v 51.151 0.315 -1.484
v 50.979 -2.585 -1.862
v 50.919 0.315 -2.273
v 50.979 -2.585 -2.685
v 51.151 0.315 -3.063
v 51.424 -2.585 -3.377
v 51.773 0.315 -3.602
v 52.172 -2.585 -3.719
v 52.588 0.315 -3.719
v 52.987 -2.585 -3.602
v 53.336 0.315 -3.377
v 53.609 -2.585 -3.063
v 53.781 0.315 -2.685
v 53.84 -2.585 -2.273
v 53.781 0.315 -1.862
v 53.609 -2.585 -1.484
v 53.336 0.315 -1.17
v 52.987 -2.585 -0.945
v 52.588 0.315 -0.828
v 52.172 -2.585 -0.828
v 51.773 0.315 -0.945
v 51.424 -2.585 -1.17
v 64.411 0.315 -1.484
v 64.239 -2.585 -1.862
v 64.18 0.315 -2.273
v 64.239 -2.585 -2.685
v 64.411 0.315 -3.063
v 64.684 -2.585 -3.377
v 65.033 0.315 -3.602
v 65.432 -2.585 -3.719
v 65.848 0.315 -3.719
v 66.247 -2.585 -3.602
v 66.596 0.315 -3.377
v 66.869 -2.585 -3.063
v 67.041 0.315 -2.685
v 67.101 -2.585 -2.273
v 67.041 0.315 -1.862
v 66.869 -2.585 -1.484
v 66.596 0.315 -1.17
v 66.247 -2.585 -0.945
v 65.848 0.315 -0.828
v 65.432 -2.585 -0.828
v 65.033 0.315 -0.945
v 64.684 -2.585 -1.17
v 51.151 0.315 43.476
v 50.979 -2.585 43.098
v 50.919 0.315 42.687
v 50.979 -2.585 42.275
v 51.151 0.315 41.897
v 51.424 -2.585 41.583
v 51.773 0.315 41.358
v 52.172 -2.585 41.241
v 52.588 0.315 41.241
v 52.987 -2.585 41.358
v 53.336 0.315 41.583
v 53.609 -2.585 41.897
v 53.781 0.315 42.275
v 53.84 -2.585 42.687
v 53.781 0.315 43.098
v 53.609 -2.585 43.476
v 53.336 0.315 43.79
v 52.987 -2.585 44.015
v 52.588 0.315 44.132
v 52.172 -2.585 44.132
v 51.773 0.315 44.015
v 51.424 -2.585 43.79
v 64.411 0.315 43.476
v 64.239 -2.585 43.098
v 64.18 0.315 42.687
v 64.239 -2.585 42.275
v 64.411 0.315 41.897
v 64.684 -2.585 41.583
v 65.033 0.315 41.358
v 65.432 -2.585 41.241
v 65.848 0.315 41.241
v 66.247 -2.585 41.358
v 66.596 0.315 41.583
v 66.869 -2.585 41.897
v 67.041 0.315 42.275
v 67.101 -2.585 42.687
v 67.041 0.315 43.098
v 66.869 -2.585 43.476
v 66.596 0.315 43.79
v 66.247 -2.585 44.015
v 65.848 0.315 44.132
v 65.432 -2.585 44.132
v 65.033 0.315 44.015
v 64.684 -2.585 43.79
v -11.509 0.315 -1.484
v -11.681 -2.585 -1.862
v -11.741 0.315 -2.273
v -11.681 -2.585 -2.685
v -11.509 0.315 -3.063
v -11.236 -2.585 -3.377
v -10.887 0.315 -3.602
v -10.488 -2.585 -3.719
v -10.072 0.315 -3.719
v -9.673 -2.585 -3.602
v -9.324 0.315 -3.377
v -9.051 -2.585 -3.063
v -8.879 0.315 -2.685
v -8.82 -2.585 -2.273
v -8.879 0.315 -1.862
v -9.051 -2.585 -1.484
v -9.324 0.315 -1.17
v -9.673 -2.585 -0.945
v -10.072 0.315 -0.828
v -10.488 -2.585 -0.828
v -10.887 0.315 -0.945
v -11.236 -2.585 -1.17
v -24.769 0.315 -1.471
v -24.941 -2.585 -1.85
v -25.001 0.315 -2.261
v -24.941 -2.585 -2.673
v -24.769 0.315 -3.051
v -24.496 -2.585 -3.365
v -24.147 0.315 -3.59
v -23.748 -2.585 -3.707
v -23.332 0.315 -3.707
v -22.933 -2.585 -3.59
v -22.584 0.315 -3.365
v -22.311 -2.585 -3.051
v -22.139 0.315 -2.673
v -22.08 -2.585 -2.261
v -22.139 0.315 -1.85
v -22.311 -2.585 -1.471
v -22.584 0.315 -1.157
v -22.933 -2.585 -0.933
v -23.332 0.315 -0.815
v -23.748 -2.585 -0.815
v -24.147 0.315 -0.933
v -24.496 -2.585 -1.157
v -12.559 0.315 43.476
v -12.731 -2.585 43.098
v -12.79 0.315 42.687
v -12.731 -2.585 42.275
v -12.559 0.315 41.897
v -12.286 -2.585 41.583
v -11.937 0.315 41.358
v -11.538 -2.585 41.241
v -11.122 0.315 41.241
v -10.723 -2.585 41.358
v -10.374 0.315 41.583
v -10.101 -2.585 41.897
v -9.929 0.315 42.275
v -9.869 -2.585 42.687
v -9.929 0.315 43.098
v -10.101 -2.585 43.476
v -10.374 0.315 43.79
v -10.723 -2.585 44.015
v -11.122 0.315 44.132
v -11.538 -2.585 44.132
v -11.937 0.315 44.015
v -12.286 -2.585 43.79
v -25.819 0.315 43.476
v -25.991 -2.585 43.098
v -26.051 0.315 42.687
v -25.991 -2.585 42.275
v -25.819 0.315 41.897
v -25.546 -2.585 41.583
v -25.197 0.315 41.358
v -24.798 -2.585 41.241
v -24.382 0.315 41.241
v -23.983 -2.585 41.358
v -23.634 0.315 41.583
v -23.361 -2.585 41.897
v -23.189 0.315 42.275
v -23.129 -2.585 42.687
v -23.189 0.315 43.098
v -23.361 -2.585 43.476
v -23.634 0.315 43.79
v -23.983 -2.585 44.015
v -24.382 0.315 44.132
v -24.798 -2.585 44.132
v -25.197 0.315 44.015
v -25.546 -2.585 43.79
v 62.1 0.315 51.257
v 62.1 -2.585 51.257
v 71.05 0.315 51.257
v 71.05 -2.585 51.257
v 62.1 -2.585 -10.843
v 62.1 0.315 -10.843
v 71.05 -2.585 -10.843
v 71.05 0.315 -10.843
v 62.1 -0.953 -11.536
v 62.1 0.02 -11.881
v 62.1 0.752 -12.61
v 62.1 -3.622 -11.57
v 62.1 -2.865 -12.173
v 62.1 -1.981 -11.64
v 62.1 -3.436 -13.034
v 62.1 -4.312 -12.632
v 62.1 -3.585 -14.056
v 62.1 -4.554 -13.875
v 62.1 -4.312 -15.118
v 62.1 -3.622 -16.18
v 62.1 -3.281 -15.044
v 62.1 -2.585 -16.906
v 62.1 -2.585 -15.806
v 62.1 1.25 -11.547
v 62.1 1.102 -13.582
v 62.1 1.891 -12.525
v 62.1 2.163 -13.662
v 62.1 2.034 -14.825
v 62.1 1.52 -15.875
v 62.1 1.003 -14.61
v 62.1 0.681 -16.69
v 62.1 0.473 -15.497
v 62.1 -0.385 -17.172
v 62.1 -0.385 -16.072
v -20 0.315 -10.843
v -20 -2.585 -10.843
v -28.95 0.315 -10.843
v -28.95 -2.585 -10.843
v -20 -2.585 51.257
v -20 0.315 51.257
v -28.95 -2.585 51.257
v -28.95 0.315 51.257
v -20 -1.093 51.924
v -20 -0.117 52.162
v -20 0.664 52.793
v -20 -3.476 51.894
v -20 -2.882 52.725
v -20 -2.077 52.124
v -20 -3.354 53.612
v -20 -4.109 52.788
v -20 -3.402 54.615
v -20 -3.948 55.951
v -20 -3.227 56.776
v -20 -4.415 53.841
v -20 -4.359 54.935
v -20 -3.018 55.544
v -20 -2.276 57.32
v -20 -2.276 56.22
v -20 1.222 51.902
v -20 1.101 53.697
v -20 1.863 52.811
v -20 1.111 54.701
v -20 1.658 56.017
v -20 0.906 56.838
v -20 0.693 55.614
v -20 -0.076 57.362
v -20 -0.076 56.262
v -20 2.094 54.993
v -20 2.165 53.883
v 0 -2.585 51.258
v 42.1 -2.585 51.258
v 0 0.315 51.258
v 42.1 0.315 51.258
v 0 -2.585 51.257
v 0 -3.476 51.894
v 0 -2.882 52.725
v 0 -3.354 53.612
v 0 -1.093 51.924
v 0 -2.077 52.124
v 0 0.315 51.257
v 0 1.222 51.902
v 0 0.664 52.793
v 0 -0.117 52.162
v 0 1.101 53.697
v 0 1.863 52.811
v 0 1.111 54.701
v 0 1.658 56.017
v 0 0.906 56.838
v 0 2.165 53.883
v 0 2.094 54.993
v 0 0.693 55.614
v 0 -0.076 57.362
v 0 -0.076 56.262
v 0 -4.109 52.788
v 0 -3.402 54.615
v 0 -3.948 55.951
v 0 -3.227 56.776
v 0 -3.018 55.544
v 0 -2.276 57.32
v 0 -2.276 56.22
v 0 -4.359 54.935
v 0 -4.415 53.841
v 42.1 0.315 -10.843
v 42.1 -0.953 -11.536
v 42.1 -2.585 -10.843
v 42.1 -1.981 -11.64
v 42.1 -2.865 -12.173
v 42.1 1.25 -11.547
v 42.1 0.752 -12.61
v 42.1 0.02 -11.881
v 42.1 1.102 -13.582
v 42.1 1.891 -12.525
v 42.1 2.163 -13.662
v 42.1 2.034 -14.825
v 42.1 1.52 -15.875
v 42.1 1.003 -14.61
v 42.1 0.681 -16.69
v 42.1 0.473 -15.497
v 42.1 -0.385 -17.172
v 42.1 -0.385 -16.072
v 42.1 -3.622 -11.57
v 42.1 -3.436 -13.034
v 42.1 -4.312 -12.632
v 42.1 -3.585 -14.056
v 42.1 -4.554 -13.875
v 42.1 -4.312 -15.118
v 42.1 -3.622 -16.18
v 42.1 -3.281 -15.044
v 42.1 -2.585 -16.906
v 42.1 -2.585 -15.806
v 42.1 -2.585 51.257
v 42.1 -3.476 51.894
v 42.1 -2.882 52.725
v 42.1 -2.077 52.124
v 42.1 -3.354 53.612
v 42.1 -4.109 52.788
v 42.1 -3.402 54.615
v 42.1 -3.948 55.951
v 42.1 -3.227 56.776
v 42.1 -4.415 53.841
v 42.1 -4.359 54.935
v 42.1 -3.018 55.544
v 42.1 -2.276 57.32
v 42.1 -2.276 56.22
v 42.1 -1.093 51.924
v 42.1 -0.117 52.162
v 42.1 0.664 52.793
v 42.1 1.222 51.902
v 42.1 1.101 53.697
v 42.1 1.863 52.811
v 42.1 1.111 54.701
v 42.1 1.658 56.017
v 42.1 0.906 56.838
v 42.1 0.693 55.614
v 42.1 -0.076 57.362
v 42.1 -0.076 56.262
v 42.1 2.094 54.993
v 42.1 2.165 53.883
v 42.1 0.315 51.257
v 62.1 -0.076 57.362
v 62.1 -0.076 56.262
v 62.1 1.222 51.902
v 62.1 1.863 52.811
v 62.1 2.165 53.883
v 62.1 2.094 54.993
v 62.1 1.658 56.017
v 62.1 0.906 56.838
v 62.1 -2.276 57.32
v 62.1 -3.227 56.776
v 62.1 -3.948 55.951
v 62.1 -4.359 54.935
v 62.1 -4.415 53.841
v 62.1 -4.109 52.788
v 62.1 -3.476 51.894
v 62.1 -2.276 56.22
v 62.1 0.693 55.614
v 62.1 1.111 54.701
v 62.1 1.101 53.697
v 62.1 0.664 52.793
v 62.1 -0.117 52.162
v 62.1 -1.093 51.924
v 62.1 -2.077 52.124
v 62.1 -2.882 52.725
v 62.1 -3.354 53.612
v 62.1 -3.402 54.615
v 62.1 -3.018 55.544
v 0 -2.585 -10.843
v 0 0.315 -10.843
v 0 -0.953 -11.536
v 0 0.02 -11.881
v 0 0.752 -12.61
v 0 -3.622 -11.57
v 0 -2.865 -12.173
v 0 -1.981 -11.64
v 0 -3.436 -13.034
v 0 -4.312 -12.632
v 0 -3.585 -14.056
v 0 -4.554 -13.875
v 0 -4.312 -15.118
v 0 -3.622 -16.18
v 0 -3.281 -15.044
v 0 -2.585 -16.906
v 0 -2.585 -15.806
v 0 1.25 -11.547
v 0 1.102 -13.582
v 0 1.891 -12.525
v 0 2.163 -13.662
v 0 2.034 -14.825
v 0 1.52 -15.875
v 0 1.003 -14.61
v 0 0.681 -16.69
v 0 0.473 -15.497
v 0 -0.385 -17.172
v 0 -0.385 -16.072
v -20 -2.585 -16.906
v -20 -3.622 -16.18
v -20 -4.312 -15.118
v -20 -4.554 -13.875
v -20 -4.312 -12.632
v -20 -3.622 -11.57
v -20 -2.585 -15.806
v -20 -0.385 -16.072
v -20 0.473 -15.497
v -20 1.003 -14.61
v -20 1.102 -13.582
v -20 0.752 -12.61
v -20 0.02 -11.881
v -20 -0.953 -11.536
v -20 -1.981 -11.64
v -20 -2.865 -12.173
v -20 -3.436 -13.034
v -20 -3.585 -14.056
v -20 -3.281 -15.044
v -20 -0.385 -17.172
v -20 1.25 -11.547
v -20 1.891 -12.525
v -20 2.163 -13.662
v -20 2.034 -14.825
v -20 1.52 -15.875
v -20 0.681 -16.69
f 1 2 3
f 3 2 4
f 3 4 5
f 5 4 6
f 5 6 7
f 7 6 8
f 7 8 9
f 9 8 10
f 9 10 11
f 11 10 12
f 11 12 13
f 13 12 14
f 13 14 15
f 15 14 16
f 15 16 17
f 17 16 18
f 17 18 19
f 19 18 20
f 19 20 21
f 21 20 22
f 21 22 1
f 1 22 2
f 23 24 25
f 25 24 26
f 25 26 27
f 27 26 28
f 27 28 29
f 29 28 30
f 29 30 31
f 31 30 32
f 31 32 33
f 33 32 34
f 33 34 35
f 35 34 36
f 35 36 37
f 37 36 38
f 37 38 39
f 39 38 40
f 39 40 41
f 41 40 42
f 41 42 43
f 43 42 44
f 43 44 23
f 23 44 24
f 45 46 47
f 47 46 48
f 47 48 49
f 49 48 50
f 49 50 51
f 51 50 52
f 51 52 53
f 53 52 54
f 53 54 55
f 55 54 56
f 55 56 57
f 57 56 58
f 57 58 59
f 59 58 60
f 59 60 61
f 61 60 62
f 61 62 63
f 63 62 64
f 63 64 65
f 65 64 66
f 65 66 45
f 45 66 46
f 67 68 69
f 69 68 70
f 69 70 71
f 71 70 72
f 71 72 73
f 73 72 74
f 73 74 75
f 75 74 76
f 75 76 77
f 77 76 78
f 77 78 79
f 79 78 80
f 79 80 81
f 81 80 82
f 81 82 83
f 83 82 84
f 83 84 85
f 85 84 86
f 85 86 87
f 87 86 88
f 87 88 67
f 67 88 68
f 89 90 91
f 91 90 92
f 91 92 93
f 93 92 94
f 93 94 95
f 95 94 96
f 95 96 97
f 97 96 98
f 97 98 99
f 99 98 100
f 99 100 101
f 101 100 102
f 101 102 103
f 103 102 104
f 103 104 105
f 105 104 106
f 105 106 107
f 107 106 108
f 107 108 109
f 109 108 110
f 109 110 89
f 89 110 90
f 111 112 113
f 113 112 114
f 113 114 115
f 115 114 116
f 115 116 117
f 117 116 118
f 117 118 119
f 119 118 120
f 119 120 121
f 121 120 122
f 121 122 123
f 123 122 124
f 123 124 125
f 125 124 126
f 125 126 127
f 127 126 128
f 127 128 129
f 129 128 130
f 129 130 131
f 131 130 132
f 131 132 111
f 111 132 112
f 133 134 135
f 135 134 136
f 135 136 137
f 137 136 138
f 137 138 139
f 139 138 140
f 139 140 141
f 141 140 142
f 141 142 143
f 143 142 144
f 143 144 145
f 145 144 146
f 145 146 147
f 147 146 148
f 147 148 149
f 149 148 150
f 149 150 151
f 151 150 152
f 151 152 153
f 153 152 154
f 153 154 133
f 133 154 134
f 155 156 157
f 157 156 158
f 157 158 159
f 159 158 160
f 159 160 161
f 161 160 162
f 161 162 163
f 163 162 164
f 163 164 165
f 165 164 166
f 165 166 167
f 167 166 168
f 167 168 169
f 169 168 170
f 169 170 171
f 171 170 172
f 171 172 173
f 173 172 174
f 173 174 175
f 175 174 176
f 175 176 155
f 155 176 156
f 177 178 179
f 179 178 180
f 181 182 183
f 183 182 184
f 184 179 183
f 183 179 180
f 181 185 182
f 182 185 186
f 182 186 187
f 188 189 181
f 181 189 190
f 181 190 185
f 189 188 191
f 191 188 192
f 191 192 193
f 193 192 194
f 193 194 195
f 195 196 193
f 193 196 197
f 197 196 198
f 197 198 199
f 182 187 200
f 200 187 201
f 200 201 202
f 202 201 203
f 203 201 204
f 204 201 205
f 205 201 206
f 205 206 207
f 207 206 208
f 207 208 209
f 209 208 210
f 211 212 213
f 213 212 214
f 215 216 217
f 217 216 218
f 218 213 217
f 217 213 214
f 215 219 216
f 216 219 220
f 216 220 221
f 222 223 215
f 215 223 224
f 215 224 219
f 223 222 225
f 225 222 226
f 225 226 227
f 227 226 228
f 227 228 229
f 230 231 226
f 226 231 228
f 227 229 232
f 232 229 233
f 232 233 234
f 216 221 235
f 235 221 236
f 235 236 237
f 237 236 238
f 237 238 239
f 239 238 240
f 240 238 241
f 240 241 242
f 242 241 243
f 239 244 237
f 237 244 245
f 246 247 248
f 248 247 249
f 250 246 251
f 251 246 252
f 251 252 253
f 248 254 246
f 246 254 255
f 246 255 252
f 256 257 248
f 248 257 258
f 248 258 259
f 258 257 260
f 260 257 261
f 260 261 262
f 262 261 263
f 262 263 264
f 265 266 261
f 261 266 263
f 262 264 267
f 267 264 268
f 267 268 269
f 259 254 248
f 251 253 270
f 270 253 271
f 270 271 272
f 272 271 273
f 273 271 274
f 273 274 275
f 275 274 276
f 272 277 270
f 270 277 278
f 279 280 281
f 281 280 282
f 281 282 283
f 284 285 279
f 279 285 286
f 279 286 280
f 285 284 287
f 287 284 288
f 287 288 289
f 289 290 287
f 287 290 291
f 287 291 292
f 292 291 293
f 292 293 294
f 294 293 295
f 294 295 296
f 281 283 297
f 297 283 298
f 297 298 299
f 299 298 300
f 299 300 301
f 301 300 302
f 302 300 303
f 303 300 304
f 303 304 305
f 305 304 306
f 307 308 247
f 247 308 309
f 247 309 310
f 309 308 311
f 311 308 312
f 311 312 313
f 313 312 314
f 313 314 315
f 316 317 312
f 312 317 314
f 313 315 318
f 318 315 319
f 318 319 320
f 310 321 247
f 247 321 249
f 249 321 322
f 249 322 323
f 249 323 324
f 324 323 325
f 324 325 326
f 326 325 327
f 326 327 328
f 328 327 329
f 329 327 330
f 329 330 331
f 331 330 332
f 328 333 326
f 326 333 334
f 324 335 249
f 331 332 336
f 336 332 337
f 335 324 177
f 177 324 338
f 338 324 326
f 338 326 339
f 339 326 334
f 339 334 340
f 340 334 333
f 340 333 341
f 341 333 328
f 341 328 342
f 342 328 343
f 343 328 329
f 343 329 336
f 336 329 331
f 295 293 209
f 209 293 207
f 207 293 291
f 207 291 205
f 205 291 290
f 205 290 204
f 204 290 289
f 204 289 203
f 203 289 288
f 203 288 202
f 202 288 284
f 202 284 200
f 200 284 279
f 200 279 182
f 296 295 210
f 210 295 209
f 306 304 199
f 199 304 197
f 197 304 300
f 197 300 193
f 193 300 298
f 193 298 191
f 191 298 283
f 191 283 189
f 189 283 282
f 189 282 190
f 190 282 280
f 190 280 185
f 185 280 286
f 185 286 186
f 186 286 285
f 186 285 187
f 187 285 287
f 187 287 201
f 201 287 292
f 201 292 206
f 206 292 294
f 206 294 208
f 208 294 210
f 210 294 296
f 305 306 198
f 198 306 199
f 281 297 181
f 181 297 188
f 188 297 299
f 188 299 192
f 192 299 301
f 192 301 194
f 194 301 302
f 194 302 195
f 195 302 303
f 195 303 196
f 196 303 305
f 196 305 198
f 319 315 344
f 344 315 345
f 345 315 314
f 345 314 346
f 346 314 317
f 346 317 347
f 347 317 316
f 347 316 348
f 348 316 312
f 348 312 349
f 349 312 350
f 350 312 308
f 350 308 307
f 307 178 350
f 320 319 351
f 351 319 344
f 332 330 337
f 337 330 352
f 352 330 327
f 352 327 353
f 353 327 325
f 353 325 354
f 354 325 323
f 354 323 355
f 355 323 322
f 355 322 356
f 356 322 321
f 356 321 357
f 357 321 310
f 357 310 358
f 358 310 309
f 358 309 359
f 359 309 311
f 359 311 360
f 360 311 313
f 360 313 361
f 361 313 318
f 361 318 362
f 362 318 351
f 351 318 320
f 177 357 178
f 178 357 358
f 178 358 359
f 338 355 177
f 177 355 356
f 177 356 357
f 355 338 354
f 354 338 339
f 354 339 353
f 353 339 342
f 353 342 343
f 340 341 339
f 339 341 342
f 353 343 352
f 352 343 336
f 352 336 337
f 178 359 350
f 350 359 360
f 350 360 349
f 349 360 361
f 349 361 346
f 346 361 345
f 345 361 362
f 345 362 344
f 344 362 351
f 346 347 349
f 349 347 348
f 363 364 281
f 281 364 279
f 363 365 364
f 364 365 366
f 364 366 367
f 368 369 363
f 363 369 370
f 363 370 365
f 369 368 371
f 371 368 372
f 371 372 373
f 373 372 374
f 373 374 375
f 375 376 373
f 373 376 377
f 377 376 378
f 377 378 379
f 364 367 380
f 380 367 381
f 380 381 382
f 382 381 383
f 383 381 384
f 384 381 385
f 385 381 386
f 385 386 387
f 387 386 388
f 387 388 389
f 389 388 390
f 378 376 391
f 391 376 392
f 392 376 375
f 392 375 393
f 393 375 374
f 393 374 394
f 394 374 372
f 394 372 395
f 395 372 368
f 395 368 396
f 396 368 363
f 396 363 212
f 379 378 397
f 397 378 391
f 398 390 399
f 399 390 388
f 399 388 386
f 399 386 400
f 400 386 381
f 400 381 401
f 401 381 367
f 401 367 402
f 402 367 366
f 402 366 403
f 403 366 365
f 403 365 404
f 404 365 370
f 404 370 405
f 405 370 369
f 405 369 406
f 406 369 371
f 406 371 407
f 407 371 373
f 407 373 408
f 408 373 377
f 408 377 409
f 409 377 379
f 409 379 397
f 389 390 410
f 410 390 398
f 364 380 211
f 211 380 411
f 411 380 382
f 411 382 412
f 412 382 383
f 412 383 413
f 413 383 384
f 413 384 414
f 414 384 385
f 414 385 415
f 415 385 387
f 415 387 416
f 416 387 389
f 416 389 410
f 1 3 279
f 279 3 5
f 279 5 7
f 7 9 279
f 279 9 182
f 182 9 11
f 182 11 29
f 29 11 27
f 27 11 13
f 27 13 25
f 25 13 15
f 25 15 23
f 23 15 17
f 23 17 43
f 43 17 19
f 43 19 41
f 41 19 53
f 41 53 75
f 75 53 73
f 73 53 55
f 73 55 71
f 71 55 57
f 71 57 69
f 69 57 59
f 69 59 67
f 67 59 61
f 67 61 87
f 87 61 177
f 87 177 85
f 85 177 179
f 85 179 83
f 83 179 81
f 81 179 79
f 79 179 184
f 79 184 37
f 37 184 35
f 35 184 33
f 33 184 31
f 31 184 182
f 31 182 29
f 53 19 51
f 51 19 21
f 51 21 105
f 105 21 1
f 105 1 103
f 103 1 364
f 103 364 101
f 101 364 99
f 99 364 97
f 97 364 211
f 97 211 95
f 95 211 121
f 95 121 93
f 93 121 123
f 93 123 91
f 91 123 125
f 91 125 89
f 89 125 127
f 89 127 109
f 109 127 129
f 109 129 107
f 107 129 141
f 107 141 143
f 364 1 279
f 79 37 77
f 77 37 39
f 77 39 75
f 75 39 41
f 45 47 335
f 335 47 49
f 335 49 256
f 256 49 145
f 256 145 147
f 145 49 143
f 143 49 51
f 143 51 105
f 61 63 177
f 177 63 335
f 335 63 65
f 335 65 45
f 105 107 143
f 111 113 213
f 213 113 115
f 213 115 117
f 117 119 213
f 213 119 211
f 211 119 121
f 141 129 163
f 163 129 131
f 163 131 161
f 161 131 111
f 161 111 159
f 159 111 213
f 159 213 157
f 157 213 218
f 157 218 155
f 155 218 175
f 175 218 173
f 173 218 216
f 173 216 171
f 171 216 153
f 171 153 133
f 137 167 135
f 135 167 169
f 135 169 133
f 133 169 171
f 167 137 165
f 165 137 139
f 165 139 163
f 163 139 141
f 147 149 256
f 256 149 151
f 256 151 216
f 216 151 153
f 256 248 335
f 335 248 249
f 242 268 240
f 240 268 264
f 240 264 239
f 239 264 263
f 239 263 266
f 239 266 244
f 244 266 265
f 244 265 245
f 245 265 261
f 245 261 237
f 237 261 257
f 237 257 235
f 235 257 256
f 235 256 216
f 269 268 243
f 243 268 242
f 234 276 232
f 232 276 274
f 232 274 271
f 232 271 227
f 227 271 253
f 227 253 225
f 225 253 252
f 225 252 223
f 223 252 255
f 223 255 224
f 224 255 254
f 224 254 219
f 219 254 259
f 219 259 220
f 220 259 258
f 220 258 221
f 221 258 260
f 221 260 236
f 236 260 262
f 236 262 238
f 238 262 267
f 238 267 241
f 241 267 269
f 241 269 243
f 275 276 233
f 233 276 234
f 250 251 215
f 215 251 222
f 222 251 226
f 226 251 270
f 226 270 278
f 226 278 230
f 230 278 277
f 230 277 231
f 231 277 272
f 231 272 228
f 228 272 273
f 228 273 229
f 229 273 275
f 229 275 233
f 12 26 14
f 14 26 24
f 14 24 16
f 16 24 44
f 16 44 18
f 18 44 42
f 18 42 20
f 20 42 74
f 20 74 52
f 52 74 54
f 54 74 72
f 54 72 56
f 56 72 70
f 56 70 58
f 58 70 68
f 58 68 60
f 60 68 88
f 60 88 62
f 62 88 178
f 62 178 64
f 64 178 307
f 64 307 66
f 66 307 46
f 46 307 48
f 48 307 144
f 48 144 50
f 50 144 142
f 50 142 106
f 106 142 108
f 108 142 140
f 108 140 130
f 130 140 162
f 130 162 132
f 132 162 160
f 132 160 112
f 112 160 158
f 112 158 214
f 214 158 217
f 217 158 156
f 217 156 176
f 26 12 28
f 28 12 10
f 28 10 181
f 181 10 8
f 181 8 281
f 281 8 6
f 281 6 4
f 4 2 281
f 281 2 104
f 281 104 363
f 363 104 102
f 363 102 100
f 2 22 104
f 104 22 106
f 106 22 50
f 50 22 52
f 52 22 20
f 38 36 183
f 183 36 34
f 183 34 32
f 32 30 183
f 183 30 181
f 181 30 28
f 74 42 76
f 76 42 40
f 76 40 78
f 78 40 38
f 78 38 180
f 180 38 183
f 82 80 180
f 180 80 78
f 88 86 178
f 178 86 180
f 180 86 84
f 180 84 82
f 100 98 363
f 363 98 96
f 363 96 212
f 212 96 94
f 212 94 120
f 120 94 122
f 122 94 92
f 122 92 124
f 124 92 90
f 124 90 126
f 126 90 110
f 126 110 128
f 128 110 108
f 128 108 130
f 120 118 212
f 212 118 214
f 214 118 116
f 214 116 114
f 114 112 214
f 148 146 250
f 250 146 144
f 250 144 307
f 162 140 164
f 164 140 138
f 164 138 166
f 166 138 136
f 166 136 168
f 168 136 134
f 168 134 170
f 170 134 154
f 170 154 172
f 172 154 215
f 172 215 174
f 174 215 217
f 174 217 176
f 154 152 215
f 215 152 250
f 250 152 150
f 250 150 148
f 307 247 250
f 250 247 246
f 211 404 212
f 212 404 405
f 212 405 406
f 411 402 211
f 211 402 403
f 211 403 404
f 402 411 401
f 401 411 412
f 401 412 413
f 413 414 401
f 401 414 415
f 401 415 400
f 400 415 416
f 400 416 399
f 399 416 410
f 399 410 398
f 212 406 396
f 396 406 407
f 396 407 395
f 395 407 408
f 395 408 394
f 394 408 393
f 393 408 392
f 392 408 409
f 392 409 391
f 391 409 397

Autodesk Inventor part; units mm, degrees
ref_plane "YZ Plane" through (0, 0, 0) normal (1, 0, 0) x (0, 1, 0)
ref_plane "XZ Plane" through (0, 0, 0) normal (0, 1, 0) x (-1, 0, 0)
ref_plane "XY Plane" through (0, 0, 0) normal (0, 0, 1) x (1, 0, 0)
sketch "Sketch1" plane through (0, 0, 0) normal (1, 0, 0) x (0, 1, 0)
  line L0 (0.3153, 51.2567) -> (-2.5847, 51.2567)
  line L1 (-2.5847, 51.2567) -> (-2.5847, -10.8433)
  line L2 (-2.5847, -10.8433) -> (0.3153, -10.8433)
  line L3 (0.3153, -10.8433) -> (0.3153, 51.2567)
  arc A0 (0.3153, 51.2567) -> (-0.0756, 57.3616) centre (-1.1163, 54.23) ccw
  arc A1 (-2.2756, 57.3196) -> (-2.5847, 51.2567) centre (-1.1371, 54.2222) ccw
  line L4 (-2.2756, 57.3196) -> (-2.2756, 56.2196)
  line L5 (-0.0756, 57.3616) -> (-0.0756, 56.2616)
  arc A2 (-2.2756, 56.2196) -> (-0.0756, 56.2616) centre (-1.1371, 54.2222) ccw
  arc A3 (-2.5847, -10.8433) -> (-2.5847, -16.9063) centre (-1.2354, -13.8748) ccw
  arc A4 (-0.3847, -16.0719) -> (-2.5847, -15.8063) centre (-1.2354, -13.8748) ccw
  arc A5 (-0.3847, -17.1719) -> (0.3153, -10.8433) centre (-1.2354, -13.8748) ccw
  line L6 (-2.5847, -15.8063) -> (-2.5847, -16.9063)
  line L7 (-0.3847, -16.0719) -> (-0.3847, -17.1719)
  point P0 (0, 0)
  dimension "d0" = 2.9
  dimension "d1" = 62.1
  dimension "d163" = 1.1
  dimension "d164" = 1.1
  dimension "d165" = 2.2
  dimension "d166" = 2.2991
  dimension "d167" = 3.3
  dimension "d168" = 3.3
  dimension "d171" = 6.063
  dimension "d172" = 6.1049
  dimension "d174" = 6.063
  dimension "d176" = 1.1
  dimension "d177" = 1.1
  dimension "d178" = 2.2
extrude "Extrusion1" add sketch "Sketch1" against normal blind 20
sketch "Sketch3" plane through (0, 0, 0) normal (1, 0, 0) x (0, 0, -1)
  line L0 (10.8433, -2.5847) -> (-51.2567, -2.5847)
  line L1 (-51.2567, 0.3153) -> (10.8433, 0.3153)
  line L2 (10.8433, 0.3153) -> (10.8433, -2.5847)
  line L3 (10.8433, -2.5847) -> (-51.2567, -2.5847)
  line L4 (-51.2567, -2.5847) -> (-51.2567, 0.3153)
  point P0 (0, 0)
extrude "Extrusion2" add sketch "Sketch3" along normal blind 42.1
sketch "Sketch4" plane through (42.1, 0, 0) normal (1, 0, 0) x (0, 0, -1)
  line L0 (10.8433, -2.5847) -> (-51.2567, -2.5847)
  line L1 (10.8433, -2.5847) -> (-51.2567, -2.5847)
  line L2 (-51.2567, -2.5847) -> (-51.2567, 0.3153)
  line L3 (-51.2567, 0.3153) -> (10.8433, 0.3153)
  line L4 (10.8433, 0.3153) -> (10.8433, -2.5847)
  arc A0 (-57.3196, -2.2756) -> (-51.2567, -2.5847) centre (-54.2222, -1.1371) ccw
  arc A1 (-57.3196, -2.2756) -> (-51.2567, -2.5847) centre (-54.2222, -1.1371) ccw
  arc A2 (-51.2567, 0.3153) -> (-57.3616, -0.0756) centre (-54.23, -1.1163) ccw
  arc A3 (-51.2567, 0.3153) -> (-57.3616, -0.0756) centre (-54.2286, -1.1372) ccw
  arc A4 (-56.2196, -2.2756) -> (-56.2616, -0.0756) centre (-54.2222, -1.1371) ccw
  arc A5 (-56.2196, -2.2756) -> (-56.2616, -0.0756) centre (-54.2286, -1.1372) ccw
  line L5 (-56.2196, -2.2756) -> (-57.3196, -2.2756)
  line L6 (-56.2196, -2.2756) -> (-57.3196, -2.2756)
  line L7 (-57.3616, -0.0756) -> (-56.2616, -0.0756)
  line L8 (-56.2616, -0.0756) -> (-57.3616, -0.0756)
  arc A6 (-57.3196, -2.2756) -> (-51.2567, -2.5847) centre (-54.2222, -1.1371) ccw
  line L9 (-51.2567, -2.5847) -> (-51.2567, 0.3153)
  arc A7 (-51.2567, 0.3153) -> (-57.3616, -0.0756) centre (-54.23, -1.1163) ccw
  arc A8 (-56.2196, -2.2756) -> (-56.2616, -0.0756) centre (-54.2222, -1.1371) ccw
  line L10 (-57.3196, -2.2756) -> (-56.2196, -2.2756)
  line L11 (-56.2616, -0.0756) -> (-57.3616, -0.0756)
  line L12 (-56.2616, -0.0756) -> (-57.3616, -0.0756)
  line L13 (-56.2616, -0.0756) -> (-57.3616, -0.0756)
  arc A9 (10.8433, -2.5847) -> (16.9063, -2.5847) centre (13.8748, -1.2354) ccw
  arc A10 (10.8433, -2.5847) -> (16.9063, -2.5847) centre (13.8748, -1.2354) ccw
  arc A11 (17.1719, -0.3847) -> (10.8433, 0.3153) centre (13.8748, -1.2354) ccw
  arc A12 (17.1719, -0.3847) -> (10.8433, 0.3153) centre (13.8748, -1.2354) ccw
  arc A13 (16.0719, -0.3847) -> (15.8063, -2.5847) centre (13.8748, -1.2354) ccw
  arc A14 (16.0719, -0.3847) -> (15.8063, -2.5847) centre (13.8748, -1.2354) ccw
  line L14 (15.8063, -2.5847) -> (16.9063, -2.5847)
  line L15 (16.0719, -0.3847) -> (17.1719, -0.3847)
extrude "Extrusion3" add sketch "Sketch4" along normal blind 20 contours L0 L2 L3 L4 | L4 A11 L15 A13 L14 A9 | A0 L5 A4 L7 A3 L2 | A3 A2
sketch "Sketch9" plane through (0, -2.5847, 51.2567) normal (0, 0, 1) x (1, 0, 0)
  line L0 (0, 2.9) -> (42.1, 2.9) projected
  line L1 (0, 2.9) -> (42.1, 2.9)
  line L2 (42.1, 2.9) -> (42.1, 0)
  line L3 (42.1, 0) -> (0, 0)
  line L4 (0, 0) -> (0, 2.9)
  point P0 (0, 2.5847)
extrude "Extrusion4" add sketch "Sketch9" along normal blind 0.001
sketch "Sketch10" plane through (-20, 0, 0) normal (-1, 0, 0) x (0, 0, 1)
  arc A0 (51.2567, -2.5847) -> (57.3196, -2.2756) centre (54.2222, -1.1371) ccw
  line L0 (-10.8433, 0.3153) -> (-10.8433, -2.5847)
  line L1 (51.2567, -2.5847) -> (-10.8433, -2.5847)
  line L2 (-10.8433, -2.5847) -> (-10.8433, 0.3153)
  line L3 (-10.8433, 0.3153) -> (51.2567, 0.3153)
  line L4 (51.2567, 0.3153) -> (51.2567, -2.5847)
  point P0 (0, 0)
  point P1 (-10.8433, -2.5847)
extrude "Extrusion5" add sketch "Sketch10" along normal blind 8.95
sketch "Sketch11" plane through (62.1, 0, 0) normal (1, 0, 0) x (0, 0, -1)
  line L0 (10.8433, -2.5847) -> (10.8433, 0.3153)
  arc A0 (-51.2567, 0.3153) -> (-57.3616, -0.0756) centre (-54.23, -1.1163) ccw
  line L1 (10.8433, -2.5847) -> (-51.2567, -2.5847)
  line L2 (-51.2567, -2.5847) -> (-51.2567, 0.3153)
  line L3 (-51.2567, 0.3153) -> (10.8433, 0.3153)
  line L4 (10.8433, 0.3153) -> (10.8433, -2.5847)
  point P0 (0, 0)
  point P1 (-57.2033, 0.3153)
  point P2 (10.8433, 0.3153)
extrude "Extrusion6" add sketch "Sketch11" along normal blind 8.95
sketch "Sketch12" plane through (0, -2.5847, 57.2567) normal (0, -1, 0) x (1, 0, 0)
  line L0 (-20, -6) -> (-30, -6)
  line L1 (-30, -68.1) -> (-30, -6)
  point P0 (-24.59, -14.57)
  dimension "d133" = 8.57
  dimension "d134" = 5.41
hole "Hole5" at (-24.59, -2.5847, 42.6867) direction (0, 1, 0) diameter 2.921 end through all
sketch "Sketch13" plane through (0, -2.5847, 57.2567) normal (0, -1, 0) x (1, 0, 0)
  line L0 (0, -6) -> (-20, -6)
  circle A0 centre (-24.59, -14.57) radius 1.4605
  point P0 (-11.33, -14.57)
  dimension "d135" = 8.57
  dimension "d136" = 13.26
hole "Hole6" at (-11.33, -2.5847, 42.6867) direction (0, 1, 0) diameter 2.921 end through all
sketch "Sketch14" plane through (0, -2.5847, 57.2567) normal (0, -1, 0) x (1, 0, 0)
  line L0 (-28.95, -68.1) -> (-28.95, -6) projected
  circle A0 centre (-24.59, -14.57) radius 1.4605 projected
  point P0 (0, -57.2567)
  point P1 (-23.54, -59.5177)
  dimension "d137" = 5.41
  dimension "d138" = 44.96
hole "Hole7" at (-23.54, -2.5847, -2.2611) direction (0, 1, 0) diameter 2.921 end through all
sketch "Sketch15" plane through (0, -2.5847, 57.2567) normal (0, -1, 0) x (1, 0, 0)
  circle A0 centre (-11.33, -14.57) radius 1.4605 projected
  circle A1 centre (-23.54, -59.5177) radius 1.4605 projected
  point P0 (0, -57.2567)
  point P1 (-10.28, -59.53)
  dimension "d139" = 44.96
  dimension "d148" = 13.26
hole "Hole8" at (-10.28, -2.5847, -2.2733) direction (0, 1, 0) diameter 2.921 end through all
sketch "Sketch17" plane through (0, -2.5847, 57.2567) normal (0, -1, 0) x (1, 0, 0)
  line L0 (71.05, -6) -> (71.05, -68.1) projected
  line L1 (62.1, -6) -> (71.05, -6) projected
  point P0 (0, -57.2567)
  point P1 (65.64, -14.57)
  dimension "d142" = 5.41
  dimension "d147" = 8.57
hole "Hole10" at (65.64, -2.5847, 42.6867) direction (0, 1, 0) diameter 2.921 end through all
sketch "Sketch16" plane through (0, -2.5847, 57.2567) normal (0, -1, 0) x (1, 0, 0)
  circle A0 centre (65.64, -14.57) radius 1.4605 projected
  line L0 (42.1, -6) -> (62.1, -6) projected
  point P0 (0, -57.2567)
  point P1 (52.38, -14.57)
  dimension "d144" = 13.26
  dimension "d146" = 8.57
hole "Hole9" at (52.38, -2.5847, 42.6867) direction (0, 1, 0) diameter 2.921 end through all
sketch "Sketch19" plane through (0, -2.5847, 57.2567) normal (0, -1, 0) x (1, 0, 0)
  circle A0 centre (65.64, -14.57) radius 1.4605 projected
  line L0 (71.05, -6) -> (71.05, -68.1) projected
  point P0 (0, -57.2567)
  point P1 (65.64, -59.53)
  dimension "d141" = 44.96
  dimension "d143" = 5.41
hole "Hole12" at (65.64, -2.5847, -2.2733) direction (0, 1, 0) diameter 2.921 end through all
sketch "Sketch18" plane through (0, -2.5847, 57.2567) normal (0, -1, 0) x (1, 0, 0)
  circle A0 centre (52.38, -14.57) radius 1.4605 projected
  circle A1 centre (65.64, -59.53) radius 1.4605 projected
  point P0 (0, -57.2567)
  point P1 (52.38, -59.53)
  dimension "d140" = 44.96
  dimension "d145" = 13.26
hole "Hole11" at (52.38, -2.5847, -2.2733) direction (0, 1, 0) diameter 2.921 end through all
